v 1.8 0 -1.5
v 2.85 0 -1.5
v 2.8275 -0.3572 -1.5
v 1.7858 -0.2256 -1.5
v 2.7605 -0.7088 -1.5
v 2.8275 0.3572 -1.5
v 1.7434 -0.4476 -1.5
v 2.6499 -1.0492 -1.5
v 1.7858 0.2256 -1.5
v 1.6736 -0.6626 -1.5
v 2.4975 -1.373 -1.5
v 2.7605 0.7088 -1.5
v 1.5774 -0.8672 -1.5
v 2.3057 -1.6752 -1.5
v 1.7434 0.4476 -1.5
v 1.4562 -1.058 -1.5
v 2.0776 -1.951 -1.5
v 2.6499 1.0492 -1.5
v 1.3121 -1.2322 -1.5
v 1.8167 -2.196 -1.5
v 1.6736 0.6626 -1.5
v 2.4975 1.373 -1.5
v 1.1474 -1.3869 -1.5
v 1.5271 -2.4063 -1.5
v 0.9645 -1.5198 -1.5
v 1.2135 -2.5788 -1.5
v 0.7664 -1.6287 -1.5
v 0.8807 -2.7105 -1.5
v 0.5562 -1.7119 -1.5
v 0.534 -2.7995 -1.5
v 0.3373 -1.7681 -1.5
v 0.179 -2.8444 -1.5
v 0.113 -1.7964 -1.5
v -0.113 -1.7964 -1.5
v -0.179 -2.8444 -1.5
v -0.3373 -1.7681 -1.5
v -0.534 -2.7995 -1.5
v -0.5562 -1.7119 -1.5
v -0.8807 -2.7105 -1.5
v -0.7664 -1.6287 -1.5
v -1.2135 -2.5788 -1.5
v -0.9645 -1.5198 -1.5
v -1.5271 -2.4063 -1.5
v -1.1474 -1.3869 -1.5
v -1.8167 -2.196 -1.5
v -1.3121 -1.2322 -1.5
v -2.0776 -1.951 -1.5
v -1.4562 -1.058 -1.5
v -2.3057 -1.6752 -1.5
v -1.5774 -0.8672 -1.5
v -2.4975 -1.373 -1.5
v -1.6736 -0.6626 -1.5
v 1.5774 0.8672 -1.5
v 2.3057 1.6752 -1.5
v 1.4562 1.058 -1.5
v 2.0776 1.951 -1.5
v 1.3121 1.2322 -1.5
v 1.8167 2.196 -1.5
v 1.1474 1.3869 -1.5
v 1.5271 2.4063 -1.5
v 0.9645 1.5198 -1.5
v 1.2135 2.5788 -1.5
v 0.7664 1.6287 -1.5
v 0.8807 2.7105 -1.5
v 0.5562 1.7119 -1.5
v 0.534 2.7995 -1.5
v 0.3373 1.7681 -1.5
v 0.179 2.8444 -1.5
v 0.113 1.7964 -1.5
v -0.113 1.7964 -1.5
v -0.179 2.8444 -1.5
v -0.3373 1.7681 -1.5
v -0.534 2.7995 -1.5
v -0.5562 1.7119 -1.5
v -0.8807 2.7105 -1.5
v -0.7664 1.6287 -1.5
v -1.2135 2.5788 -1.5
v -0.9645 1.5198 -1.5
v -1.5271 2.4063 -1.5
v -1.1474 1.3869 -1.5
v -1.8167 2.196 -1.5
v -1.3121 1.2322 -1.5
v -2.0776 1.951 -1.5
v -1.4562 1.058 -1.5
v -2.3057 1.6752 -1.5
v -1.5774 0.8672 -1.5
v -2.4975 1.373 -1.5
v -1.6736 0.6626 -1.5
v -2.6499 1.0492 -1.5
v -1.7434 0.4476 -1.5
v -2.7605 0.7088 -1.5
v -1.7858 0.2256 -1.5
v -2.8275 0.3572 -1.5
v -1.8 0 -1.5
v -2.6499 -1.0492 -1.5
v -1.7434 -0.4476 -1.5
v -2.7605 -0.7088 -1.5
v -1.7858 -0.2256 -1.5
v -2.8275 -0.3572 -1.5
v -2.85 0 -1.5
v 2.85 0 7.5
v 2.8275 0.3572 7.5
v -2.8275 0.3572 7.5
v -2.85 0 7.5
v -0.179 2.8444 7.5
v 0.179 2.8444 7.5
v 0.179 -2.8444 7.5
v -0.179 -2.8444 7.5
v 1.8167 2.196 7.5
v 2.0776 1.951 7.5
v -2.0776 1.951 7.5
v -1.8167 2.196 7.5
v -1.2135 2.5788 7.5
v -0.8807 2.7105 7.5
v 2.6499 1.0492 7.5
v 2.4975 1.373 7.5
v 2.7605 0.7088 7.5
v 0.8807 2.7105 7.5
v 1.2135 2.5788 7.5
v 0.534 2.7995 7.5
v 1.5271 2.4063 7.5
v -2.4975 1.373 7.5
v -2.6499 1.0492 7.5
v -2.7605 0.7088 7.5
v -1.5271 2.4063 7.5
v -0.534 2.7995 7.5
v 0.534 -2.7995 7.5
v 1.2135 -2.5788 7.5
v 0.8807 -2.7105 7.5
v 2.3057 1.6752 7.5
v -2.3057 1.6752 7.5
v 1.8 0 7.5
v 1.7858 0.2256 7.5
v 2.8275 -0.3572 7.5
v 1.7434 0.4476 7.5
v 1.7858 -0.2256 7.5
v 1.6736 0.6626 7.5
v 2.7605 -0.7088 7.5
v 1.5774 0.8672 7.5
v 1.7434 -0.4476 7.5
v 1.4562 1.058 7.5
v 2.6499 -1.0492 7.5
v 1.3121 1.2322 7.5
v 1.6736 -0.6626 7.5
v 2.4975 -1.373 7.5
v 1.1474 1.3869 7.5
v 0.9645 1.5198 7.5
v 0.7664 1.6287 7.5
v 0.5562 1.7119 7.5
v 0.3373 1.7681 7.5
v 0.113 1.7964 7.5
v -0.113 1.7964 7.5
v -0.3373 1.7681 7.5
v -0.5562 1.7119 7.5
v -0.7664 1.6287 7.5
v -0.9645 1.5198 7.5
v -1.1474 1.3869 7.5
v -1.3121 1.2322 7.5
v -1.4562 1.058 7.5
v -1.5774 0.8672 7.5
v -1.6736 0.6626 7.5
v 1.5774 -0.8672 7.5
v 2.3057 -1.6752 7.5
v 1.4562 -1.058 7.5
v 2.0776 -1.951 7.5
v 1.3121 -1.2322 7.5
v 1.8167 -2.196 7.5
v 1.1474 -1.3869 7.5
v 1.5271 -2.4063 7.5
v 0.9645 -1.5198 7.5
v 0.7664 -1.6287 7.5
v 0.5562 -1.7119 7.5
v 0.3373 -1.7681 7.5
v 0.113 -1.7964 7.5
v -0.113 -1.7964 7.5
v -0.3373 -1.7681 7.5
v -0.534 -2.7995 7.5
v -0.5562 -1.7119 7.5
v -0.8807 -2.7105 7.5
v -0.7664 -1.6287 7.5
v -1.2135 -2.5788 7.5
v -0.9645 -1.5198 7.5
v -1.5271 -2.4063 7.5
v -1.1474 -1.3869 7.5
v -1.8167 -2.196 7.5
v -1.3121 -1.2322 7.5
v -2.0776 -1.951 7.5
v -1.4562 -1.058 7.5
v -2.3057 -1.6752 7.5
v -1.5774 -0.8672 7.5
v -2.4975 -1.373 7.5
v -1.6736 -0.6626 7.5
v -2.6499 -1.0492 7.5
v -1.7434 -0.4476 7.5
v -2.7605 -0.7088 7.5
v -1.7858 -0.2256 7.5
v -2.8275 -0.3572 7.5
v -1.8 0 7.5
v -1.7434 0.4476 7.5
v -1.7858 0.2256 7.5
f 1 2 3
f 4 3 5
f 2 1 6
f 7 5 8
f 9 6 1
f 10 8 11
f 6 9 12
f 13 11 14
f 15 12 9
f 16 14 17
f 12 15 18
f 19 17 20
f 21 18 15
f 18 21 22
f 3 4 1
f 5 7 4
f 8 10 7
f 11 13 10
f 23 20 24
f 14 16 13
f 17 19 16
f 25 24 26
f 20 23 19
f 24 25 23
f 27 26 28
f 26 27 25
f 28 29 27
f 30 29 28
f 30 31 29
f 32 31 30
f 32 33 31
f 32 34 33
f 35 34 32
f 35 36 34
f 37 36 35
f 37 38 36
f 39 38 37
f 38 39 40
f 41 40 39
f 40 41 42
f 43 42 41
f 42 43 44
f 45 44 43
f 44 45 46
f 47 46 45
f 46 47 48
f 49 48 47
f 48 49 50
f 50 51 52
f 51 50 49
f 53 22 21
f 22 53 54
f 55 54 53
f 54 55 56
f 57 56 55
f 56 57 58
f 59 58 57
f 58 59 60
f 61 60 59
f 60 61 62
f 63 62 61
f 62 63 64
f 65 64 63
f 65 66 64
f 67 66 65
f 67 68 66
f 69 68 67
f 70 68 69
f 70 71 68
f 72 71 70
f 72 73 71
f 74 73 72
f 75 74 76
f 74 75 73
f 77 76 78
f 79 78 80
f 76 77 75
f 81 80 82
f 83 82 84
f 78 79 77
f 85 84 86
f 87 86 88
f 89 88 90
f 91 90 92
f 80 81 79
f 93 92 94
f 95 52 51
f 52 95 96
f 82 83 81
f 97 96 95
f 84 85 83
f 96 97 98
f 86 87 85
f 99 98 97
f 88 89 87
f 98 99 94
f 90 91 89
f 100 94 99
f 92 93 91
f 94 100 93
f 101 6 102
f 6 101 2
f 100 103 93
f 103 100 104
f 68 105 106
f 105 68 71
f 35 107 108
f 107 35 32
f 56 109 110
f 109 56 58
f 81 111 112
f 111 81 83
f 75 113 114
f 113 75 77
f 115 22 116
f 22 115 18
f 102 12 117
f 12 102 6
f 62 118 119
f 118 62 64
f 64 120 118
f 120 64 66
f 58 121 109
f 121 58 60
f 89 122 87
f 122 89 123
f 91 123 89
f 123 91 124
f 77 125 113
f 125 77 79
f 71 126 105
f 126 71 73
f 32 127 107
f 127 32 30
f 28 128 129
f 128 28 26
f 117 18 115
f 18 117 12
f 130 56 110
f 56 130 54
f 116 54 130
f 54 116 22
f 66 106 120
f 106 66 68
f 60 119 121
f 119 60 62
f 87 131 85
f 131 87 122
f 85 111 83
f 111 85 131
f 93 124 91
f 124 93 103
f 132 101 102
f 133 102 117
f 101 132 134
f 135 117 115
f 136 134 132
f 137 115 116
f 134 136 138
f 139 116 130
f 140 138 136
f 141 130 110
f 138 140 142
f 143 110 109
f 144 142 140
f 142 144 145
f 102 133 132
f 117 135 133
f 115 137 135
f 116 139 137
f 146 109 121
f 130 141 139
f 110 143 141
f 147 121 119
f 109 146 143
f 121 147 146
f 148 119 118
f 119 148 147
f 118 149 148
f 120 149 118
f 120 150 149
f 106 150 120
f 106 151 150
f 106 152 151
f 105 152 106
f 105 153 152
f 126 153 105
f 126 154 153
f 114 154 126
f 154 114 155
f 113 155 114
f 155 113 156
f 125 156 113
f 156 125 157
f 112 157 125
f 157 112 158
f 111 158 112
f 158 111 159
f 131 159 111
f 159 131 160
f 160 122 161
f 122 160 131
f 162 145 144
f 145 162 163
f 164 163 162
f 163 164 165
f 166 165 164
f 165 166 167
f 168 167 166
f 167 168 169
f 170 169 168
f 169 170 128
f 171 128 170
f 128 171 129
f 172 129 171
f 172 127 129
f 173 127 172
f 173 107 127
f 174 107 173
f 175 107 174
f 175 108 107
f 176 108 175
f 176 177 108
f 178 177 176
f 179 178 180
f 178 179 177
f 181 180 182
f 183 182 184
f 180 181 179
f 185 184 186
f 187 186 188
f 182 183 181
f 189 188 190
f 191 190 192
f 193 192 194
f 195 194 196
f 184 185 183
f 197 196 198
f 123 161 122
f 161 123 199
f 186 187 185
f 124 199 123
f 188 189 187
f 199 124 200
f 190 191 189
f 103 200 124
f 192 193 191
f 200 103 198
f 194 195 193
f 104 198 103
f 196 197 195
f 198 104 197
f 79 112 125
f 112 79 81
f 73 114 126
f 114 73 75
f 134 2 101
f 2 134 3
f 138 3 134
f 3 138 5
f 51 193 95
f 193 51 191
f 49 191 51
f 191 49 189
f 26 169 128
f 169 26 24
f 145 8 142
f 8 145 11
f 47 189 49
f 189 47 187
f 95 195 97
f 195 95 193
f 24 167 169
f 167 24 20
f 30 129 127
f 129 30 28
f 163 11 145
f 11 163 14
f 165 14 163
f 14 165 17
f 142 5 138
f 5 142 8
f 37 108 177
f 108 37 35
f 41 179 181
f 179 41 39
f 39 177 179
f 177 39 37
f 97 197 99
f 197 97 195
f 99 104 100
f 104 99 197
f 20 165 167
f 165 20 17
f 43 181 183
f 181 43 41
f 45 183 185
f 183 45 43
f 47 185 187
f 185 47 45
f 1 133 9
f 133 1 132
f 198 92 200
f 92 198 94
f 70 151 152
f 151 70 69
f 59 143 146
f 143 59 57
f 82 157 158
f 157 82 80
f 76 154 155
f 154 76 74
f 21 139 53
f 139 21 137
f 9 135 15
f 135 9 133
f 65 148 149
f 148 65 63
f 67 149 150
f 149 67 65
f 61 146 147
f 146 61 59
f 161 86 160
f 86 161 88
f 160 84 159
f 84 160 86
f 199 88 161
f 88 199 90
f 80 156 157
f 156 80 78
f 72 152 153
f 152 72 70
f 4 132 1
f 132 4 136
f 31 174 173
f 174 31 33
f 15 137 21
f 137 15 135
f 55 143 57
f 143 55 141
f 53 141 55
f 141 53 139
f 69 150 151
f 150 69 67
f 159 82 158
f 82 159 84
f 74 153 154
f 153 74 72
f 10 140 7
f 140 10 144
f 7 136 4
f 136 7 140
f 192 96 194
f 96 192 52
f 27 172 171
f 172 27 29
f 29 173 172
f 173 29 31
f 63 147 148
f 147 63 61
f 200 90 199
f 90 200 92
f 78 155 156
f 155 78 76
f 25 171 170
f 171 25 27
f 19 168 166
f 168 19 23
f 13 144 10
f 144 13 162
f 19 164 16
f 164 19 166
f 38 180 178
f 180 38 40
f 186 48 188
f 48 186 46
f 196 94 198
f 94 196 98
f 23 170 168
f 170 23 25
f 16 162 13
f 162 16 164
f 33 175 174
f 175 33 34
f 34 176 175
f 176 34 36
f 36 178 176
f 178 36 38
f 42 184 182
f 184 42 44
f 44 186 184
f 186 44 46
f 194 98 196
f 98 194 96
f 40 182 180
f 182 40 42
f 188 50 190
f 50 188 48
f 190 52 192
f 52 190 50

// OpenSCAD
$fn = 50;


difference() {
	union() {
		translate(v = [0, 0, -1.5000000000]) {
			rotate(a = [0, 0, 0]) {
				cylinder(h = 3, r = 1.0000000000);
			}
		}
		translate(v = [0, 0, -1.5000000000]) {
			rotate(a = [0, 0, 0]) {
				cylinder(h = 9, r = 2.8500000000);
			}
		}
	}
	union() {
		translate(v = [0, 0, -125.0000000000]) {
			rotate(a = [0, 0, 0]) {
				cylinder(h = 250, r = 1.8000000000);
			}
		}
	}
}
